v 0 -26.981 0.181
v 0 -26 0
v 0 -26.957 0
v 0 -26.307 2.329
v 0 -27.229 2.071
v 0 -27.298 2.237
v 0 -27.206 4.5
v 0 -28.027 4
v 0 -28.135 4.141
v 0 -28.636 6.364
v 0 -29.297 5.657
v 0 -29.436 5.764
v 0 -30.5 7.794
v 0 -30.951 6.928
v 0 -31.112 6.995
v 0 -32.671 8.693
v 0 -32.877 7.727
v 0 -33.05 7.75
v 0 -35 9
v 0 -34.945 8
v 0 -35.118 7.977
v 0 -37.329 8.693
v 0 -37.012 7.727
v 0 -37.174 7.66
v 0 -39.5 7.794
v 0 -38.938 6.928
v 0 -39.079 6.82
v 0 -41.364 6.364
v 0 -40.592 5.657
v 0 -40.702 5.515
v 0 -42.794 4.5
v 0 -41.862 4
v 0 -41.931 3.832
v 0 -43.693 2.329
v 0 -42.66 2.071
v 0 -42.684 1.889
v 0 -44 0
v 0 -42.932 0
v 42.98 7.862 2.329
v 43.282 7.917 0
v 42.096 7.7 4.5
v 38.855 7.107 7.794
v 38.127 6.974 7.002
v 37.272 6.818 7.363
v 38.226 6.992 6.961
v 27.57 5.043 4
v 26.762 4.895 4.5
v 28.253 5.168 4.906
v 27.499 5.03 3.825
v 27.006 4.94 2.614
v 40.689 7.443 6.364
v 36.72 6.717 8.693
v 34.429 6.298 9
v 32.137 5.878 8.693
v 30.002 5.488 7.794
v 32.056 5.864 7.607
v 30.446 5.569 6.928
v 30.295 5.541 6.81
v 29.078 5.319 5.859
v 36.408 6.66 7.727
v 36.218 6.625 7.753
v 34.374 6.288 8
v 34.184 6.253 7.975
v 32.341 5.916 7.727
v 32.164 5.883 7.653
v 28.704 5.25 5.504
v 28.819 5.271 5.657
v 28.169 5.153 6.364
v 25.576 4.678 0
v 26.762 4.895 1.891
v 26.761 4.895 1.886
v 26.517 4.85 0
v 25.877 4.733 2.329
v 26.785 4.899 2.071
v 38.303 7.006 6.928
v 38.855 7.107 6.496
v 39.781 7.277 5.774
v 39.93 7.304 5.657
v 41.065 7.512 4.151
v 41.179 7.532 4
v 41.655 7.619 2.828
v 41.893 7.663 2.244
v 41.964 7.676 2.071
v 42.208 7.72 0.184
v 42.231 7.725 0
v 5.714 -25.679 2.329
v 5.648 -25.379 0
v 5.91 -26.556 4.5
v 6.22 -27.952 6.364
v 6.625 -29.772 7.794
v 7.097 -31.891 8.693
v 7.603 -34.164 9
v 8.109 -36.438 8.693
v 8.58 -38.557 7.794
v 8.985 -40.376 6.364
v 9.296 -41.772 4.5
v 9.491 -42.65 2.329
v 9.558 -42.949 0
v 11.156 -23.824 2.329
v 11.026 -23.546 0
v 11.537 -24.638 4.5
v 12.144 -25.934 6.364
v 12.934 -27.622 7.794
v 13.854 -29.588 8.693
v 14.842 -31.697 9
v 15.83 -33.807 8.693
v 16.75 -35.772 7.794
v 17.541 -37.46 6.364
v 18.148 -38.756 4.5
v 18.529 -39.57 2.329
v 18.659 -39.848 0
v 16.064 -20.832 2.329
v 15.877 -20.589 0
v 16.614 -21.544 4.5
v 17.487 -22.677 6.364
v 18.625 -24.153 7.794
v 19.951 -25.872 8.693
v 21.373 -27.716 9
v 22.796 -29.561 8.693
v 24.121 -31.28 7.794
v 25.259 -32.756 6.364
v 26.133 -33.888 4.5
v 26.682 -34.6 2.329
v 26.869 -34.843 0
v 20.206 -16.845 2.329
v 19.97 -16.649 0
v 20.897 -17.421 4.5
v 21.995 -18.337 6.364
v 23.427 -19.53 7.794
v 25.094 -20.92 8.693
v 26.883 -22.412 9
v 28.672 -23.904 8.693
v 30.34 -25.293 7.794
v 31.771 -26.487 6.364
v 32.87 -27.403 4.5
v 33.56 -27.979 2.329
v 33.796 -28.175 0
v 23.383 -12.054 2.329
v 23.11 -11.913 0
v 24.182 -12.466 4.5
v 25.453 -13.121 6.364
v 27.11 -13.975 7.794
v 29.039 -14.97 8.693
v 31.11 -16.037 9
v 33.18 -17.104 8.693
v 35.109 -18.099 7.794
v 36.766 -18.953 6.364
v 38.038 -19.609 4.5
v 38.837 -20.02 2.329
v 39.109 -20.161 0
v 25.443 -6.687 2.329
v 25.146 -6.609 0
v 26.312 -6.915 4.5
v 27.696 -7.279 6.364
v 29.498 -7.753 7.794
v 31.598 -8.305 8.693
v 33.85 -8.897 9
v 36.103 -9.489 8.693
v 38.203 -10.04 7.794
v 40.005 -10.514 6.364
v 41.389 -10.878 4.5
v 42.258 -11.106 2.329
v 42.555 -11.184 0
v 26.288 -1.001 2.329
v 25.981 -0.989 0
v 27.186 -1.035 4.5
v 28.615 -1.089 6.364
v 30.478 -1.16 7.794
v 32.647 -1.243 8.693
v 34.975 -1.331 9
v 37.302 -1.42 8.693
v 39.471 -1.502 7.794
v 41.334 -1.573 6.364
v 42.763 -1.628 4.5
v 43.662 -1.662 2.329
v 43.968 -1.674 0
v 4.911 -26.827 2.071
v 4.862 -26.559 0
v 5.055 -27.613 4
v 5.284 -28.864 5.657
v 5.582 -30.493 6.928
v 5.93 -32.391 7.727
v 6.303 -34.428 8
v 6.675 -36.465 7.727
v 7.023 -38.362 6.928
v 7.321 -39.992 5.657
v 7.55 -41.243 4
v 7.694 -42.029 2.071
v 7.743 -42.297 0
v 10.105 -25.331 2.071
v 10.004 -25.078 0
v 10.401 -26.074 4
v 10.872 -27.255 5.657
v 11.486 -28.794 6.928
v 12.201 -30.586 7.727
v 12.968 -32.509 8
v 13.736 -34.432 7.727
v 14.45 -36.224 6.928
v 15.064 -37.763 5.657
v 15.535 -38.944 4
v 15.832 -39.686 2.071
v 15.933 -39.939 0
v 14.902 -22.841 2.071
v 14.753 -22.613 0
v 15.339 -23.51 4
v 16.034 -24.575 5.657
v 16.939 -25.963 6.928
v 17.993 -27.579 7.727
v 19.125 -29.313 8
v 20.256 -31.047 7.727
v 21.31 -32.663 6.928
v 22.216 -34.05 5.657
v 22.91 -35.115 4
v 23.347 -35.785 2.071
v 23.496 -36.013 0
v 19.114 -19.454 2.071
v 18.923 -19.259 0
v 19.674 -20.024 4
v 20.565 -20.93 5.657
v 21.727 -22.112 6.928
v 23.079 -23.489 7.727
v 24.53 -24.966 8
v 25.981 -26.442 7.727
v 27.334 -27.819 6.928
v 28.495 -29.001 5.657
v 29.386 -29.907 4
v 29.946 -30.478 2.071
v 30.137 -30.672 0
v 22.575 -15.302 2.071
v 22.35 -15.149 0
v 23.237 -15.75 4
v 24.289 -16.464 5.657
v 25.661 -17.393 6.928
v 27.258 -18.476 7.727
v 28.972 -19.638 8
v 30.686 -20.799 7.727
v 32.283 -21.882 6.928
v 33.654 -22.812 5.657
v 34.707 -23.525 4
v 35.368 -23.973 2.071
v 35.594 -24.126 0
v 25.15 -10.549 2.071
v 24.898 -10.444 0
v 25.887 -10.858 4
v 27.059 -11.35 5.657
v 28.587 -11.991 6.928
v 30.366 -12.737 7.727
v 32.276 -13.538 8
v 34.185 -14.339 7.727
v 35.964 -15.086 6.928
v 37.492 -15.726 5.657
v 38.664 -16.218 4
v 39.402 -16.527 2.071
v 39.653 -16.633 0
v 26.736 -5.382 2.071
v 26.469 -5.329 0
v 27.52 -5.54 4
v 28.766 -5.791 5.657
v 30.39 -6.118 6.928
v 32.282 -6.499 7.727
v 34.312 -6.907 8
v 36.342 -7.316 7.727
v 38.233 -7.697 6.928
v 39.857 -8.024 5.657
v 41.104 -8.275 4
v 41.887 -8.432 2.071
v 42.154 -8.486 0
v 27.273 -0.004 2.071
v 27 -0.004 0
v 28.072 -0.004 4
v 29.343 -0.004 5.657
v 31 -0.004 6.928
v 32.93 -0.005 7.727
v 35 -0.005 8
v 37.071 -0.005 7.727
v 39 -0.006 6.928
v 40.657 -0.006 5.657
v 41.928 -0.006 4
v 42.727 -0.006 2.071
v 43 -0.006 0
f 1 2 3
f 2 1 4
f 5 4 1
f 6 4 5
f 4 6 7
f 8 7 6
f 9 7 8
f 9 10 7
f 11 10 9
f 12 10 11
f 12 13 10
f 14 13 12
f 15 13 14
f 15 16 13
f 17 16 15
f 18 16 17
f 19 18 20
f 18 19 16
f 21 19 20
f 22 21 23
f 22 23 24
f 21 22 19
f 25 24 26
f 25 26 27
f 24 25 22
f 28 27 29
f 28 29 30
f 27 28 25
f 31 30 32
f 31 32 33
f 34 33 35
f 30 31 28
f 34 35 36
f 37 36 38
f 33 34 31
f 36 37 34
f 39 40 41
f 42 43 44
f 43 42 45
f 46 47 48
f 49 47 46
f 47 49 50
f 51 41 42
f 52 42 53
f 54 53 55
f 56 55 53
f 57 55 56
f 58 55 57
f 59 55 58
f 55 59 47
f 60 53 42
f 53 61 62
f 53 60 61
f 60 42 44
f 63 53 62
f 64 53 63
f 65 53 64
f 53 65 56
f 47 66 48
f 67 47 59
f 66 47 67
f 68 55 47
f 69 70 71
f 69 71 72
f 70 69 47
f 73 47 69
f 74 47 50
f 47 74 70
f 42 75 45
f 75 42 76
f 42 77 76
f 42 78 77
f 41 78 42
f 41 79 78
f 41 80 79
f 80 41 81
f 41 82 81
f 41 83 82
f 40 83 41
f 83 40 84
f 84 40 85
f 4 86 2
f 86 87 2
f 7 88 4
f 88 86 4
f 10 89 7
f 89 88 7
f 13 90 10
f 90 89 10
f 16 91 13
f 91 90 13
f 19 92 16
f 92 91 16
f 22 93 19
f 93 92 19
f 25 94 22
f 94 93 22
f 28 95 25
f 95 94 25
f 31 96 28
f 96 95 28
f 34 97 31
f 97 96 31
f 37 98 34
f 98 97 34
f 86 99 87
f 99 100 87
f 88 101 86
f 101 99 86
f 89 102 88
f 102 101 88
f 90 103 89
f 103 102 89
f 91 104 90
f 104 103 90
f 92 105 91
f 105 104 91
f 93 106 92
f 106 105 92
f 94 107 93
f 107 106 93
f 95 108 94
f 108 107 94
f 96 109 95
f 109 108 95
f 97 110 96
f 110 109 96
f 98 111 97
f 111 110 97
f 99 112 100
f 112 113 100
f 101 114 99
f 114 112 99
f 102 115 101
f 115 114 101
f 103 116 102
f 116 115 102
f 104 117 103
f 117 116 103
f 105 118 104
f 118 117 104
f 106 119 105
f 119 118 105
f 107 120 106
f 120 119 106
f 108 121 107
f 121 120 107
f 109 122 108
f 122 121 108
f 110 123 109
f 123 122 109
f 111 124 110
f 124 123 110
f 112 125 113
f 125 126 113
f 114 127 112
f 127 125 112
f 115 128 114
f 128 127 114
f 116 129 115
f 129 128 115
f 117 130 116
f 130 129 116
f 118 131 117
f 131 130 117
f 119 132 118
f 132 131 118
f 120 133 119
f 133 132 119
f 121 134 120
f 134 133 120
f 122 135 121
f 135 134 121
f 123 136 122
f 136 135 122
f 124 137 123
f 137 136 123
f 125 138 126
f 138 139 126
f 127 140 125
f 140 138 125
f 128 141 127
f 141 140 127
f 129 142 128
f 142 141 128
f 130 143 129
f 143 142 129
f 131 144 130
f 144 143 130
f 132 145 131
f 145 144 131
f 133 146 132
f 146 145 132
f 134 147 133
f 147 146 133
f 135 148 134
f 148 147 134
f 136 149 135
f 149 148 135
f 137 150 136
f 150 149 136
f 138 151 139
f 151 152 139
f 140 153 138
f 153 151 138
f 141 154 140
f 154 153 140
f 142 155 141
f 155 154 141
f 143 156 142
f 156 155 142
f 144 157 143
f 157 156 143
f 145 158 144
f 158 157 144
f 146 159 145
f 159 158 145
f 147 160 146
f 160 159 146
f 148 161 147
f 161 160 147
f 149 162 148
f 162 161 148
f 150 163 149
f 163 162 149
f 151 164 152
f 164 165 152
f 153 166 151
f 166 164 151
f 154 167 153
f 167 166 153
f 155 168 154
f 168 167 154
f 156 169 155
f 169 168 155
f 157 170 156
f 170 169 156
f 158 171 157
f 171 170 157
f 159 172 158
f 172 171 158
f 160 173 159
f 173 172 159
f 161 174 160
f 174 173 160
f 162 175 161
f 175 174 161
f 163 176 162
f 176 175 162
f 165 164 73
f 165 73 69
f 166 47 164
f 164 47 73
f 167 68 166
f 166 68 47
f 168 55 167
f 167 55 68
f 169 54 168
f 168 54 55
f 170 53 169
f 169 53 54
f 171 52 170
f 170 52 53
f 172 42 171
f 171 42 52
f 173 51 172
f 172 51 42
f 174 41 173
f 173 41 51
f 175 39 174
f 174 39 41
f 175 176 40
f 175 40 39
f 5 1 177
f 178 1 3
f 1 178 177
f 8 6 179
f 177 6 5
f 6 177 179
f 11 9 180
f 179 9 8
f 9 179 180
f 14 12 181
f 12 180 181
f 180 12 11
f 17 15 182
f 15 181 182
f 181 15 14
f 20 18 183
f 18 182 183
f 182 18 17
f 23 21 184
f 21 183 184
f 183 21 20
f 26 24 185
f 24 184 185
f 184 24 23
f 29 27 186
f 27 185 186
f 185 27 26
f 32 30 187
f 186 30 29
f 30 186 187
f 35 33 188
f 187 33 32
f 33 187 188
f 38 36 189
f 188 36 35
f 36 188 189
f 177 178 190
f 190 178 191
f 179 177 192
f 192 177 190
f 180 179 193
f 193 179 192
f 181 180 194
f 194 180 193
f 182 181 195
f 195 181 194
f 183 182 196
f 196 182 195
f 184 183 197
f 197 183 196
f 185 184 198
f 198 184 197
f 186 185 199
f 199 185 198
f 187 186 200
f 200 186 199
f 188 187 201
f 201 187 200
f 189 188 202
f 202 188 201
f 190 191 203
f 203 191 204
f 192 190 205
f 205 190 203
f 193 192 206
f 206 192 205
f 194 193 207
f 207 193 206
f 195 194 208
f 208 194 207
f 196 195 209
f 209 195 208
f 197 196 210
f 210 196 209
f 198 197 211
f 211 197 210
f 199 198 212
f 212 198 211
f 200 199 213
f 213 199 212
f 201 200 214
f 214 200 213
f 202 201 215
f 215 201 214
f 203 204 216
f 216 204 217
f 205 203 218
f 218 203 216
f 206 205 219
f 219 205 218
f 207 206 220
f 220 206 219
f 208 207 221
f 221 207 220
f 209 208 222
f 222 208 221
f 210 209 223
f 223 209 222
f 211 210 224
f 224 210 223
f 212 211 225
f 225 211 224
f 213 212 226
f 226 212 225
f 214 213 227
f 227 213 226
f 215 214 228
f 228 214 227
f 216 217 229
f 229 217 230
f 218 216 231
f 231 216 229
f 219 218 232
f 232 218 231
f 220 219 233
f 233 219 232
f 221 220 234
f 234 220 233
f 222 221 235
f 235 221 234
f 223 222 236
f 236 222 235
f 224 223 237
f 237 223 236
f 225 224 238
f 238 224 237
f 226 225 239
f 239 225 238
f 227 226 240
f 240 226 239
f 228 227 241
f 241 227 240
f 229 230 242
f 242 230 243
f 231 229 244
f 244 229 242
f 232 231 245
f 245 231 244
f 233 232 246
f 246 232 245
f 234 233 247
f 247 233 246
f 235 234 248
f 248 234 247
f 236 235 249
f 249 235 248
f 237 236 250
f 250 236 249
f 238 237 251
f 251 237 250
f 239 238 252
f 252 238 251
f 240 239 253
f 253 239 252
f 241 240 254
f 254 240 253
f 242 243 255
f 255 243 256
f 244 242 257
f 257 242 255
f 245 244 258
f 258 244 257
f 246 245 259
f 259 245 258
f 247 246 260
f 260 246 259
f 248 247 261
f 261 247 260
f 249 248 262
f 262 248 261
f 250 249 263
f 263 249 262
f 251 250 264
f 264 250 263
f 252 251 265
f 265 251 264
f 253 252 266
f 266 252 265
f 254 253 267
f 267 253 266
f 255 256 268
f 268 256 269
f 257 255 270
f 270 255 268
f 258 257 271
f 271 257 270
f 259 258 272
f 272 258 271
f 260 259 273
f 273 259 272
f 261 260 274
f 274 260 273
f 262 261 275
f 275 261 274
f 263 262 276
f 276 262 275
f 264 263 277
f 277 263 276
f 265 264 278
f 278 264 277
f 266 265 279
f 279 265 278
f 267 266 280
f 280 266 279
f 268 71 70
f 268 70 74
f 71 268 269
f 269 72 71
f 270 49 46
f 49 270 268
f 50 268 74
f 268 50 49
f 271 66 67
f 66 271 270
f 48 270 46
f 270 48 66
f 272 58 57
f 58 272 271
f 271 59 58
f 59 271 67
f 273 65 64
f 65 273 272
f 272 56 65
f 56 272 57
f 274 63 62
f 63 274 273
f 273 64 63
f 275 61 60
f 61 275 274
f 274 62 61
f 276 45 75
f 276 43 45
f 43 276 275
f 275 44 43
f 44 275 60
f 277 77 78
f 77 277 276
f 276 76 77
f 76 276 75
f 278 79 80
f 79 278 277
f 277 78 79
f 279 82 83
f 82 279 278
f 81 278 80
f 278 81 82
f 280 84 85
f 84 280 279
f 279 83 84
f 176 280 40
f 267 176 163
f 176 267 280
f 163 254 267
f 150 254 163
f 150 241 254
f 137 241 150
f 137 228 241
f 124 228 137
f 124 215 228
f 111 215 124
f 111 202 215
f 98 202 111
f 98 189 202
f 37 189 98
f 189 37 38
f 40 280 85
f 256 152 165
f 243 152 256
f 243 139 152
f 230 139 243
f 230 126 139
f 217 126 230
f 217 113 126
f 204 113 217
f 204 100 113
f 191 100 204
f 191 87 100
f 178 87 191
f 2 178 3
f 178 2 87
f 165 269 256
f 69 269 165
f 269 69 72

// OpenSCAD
// file: ../build_environments.scad
// build_environments.scad: modules to build level sections
//

module pool(diameter=10.0, wall_height=2.0, step_width=3.0, connections=[])
{
    difference() {
        union() {
        difference() {
            cylinder(h=0.5,r1=diameter+step_width,r2=diameter+step_width,$fn=48);
            translate([0,0,-0.1])
                cylinder(h=0.7,r1=diameter,r2=diameter,$fn=48);
        }
        difference() {
            cylinder(h=wall_height,r1=diameter+step_width+1.0,r2=diameter+step_width+1.0,$fn=48);
            translate([0,0,-0.1])
                cylinder(h=wall_height+0.2,r1=diameter+step_width,r2=diameter+step_width,$fn=48);
        }
        }
    
        for (c = connections)
        {
            rotate([0,90,0]) {
                angle = atan2(c[1],c[0]);
                rotate([-angle,0,0]) {
                    cylinder(h=diameter+5.0,r1=c[2],r2=c[2],$fn=48);
                }
            }
        }
    }
}

module straight(length=10.0, width=2.0, dy1=0.0, dy2=0.0, dz=0.0)
{
    dims = [0, 0, 0, 0, 0, (dz/length)];
    matrix = [
        [ 1, dims[0], dims[1], 0 ],
        [ dims[2], 1, dims[4], 0 ],
        [ dims[5], dims[3], 1, 0 ],
        [ 0, 0, 0, 1 ]
    ];
    multmatrix(matrix)
    difference() {
        translate([dy1,0,0])
        union() {
            rotate([0,90,0]) {
                difference() {
                    cylinder(h=(length-dy1-dy2),r1=width+1.0,r2=width+1.0,$fn=24);
                    translate([0,0,-0.1])
                        cylinder(h=(length-dy1-dy2+0.2),r1=width,r2=width,$fn=24);
                }
                difference() {
                    cylinder(h=1.0,r1=width+2.0,r2=width+2.0,$fn=24);
                    translate([0,0,-0.1])
                        cylinder(h=1.2,r1=width,r2=width,$fn=24);
                }
                translate([0,0,(length-dy1-dy2)-1.0]) {
                    difference() {
                        cylinder(h=1.0,r1=width+2.0,r2=width+2.0,$fn=24);
                        translate([0,0,-0.1])
                            cylinder(h=1.2,r1=width,r2=width,$fn=24);
                    }
                }
            }
        }
        translate([0,0,-(2*width+4.0)/2])
            cube([3*length,3*length,2*width+4.0],center=true);
    }
}

module curve(p0=[0,0], center=[0,0], dir=1, angle=0.0, width=2.0)
{
    radius = sqrt((p0[0]-center[0])*(p0[0]-center[0]) + (p0[1]-center[1])*(p0[1]-center[1]));
    if (dir == 0) {
        difference() {
            rotate([0,0,-90])
            difference() {
                rotate_extrude(angle = angle, convexity = 10, $fn=32)
                    translate([radius, 0, 0])
                        circle(r = width+1.0,$fn=24);
                rotate([0,0,-1.0])
                    rotate_extrude(angle = angle+2.0, convexity = 10, $fn=32)
                        translate([radius, 0, 0])
                            circle(r = width,$fn=24);
            }
            translate([0,0,-(2*width+4.0)/2])
                cube([5*radius,5*radius,2*width+4.0],center=true);
        }
    }
    else {
        difference() {
            rotate([0,0,90])
            difference() {
                rotate_extrude(angle = -angle, convexity = 10, $fn=32)
                    translate([radius, 0, 0])
                        circle(r = width+1.0,$fn=24);
                rotate([0,0,1.0])
                    rotate_extrude(angle = -angle-2.0, convexity = 10, $fn=32)
                        translate([radius, 0, 0])
                            circle(r = width,$fn=24);
            }
            translate([0,0,-(2*width+4.0)/2])
                cube([5*radius,5*radius,2*width+4.0],center=true);
        }
    }

}

// test pool
//pool(diameter=12.0000, wall_height=3.0000, step_width=3.0000, connections=[[0.0000,-26.0000,2.0000], [23.6074,0.0000,2.0000]]);

// test straight, slope
//straight(length=26.0000, width=2.0000, dy1=11.8322, dy2=6.7082, dz=0.0000);
//straight(length=29.1549, width=12.0000, dy1=0.0000, dy2=0.0000, dz=-15.0000);

// test curve
//curve(p0=[23.6074, 0.0000], center=[23.6074, 5.0000], dir=0, angle=60.1011, width=2.0000);
//curve(p0=[33.6426, 12.4219], center=[37.9771, 9.9295], dir=1, angle=120.4627, width=2.0000);
// main file
use <../build_environments.scad>;
curve(p0=[92.0237, 226.4883], center=[83.1114, 192.6420], dir=0, angle=100.3658, width=8.0000);
